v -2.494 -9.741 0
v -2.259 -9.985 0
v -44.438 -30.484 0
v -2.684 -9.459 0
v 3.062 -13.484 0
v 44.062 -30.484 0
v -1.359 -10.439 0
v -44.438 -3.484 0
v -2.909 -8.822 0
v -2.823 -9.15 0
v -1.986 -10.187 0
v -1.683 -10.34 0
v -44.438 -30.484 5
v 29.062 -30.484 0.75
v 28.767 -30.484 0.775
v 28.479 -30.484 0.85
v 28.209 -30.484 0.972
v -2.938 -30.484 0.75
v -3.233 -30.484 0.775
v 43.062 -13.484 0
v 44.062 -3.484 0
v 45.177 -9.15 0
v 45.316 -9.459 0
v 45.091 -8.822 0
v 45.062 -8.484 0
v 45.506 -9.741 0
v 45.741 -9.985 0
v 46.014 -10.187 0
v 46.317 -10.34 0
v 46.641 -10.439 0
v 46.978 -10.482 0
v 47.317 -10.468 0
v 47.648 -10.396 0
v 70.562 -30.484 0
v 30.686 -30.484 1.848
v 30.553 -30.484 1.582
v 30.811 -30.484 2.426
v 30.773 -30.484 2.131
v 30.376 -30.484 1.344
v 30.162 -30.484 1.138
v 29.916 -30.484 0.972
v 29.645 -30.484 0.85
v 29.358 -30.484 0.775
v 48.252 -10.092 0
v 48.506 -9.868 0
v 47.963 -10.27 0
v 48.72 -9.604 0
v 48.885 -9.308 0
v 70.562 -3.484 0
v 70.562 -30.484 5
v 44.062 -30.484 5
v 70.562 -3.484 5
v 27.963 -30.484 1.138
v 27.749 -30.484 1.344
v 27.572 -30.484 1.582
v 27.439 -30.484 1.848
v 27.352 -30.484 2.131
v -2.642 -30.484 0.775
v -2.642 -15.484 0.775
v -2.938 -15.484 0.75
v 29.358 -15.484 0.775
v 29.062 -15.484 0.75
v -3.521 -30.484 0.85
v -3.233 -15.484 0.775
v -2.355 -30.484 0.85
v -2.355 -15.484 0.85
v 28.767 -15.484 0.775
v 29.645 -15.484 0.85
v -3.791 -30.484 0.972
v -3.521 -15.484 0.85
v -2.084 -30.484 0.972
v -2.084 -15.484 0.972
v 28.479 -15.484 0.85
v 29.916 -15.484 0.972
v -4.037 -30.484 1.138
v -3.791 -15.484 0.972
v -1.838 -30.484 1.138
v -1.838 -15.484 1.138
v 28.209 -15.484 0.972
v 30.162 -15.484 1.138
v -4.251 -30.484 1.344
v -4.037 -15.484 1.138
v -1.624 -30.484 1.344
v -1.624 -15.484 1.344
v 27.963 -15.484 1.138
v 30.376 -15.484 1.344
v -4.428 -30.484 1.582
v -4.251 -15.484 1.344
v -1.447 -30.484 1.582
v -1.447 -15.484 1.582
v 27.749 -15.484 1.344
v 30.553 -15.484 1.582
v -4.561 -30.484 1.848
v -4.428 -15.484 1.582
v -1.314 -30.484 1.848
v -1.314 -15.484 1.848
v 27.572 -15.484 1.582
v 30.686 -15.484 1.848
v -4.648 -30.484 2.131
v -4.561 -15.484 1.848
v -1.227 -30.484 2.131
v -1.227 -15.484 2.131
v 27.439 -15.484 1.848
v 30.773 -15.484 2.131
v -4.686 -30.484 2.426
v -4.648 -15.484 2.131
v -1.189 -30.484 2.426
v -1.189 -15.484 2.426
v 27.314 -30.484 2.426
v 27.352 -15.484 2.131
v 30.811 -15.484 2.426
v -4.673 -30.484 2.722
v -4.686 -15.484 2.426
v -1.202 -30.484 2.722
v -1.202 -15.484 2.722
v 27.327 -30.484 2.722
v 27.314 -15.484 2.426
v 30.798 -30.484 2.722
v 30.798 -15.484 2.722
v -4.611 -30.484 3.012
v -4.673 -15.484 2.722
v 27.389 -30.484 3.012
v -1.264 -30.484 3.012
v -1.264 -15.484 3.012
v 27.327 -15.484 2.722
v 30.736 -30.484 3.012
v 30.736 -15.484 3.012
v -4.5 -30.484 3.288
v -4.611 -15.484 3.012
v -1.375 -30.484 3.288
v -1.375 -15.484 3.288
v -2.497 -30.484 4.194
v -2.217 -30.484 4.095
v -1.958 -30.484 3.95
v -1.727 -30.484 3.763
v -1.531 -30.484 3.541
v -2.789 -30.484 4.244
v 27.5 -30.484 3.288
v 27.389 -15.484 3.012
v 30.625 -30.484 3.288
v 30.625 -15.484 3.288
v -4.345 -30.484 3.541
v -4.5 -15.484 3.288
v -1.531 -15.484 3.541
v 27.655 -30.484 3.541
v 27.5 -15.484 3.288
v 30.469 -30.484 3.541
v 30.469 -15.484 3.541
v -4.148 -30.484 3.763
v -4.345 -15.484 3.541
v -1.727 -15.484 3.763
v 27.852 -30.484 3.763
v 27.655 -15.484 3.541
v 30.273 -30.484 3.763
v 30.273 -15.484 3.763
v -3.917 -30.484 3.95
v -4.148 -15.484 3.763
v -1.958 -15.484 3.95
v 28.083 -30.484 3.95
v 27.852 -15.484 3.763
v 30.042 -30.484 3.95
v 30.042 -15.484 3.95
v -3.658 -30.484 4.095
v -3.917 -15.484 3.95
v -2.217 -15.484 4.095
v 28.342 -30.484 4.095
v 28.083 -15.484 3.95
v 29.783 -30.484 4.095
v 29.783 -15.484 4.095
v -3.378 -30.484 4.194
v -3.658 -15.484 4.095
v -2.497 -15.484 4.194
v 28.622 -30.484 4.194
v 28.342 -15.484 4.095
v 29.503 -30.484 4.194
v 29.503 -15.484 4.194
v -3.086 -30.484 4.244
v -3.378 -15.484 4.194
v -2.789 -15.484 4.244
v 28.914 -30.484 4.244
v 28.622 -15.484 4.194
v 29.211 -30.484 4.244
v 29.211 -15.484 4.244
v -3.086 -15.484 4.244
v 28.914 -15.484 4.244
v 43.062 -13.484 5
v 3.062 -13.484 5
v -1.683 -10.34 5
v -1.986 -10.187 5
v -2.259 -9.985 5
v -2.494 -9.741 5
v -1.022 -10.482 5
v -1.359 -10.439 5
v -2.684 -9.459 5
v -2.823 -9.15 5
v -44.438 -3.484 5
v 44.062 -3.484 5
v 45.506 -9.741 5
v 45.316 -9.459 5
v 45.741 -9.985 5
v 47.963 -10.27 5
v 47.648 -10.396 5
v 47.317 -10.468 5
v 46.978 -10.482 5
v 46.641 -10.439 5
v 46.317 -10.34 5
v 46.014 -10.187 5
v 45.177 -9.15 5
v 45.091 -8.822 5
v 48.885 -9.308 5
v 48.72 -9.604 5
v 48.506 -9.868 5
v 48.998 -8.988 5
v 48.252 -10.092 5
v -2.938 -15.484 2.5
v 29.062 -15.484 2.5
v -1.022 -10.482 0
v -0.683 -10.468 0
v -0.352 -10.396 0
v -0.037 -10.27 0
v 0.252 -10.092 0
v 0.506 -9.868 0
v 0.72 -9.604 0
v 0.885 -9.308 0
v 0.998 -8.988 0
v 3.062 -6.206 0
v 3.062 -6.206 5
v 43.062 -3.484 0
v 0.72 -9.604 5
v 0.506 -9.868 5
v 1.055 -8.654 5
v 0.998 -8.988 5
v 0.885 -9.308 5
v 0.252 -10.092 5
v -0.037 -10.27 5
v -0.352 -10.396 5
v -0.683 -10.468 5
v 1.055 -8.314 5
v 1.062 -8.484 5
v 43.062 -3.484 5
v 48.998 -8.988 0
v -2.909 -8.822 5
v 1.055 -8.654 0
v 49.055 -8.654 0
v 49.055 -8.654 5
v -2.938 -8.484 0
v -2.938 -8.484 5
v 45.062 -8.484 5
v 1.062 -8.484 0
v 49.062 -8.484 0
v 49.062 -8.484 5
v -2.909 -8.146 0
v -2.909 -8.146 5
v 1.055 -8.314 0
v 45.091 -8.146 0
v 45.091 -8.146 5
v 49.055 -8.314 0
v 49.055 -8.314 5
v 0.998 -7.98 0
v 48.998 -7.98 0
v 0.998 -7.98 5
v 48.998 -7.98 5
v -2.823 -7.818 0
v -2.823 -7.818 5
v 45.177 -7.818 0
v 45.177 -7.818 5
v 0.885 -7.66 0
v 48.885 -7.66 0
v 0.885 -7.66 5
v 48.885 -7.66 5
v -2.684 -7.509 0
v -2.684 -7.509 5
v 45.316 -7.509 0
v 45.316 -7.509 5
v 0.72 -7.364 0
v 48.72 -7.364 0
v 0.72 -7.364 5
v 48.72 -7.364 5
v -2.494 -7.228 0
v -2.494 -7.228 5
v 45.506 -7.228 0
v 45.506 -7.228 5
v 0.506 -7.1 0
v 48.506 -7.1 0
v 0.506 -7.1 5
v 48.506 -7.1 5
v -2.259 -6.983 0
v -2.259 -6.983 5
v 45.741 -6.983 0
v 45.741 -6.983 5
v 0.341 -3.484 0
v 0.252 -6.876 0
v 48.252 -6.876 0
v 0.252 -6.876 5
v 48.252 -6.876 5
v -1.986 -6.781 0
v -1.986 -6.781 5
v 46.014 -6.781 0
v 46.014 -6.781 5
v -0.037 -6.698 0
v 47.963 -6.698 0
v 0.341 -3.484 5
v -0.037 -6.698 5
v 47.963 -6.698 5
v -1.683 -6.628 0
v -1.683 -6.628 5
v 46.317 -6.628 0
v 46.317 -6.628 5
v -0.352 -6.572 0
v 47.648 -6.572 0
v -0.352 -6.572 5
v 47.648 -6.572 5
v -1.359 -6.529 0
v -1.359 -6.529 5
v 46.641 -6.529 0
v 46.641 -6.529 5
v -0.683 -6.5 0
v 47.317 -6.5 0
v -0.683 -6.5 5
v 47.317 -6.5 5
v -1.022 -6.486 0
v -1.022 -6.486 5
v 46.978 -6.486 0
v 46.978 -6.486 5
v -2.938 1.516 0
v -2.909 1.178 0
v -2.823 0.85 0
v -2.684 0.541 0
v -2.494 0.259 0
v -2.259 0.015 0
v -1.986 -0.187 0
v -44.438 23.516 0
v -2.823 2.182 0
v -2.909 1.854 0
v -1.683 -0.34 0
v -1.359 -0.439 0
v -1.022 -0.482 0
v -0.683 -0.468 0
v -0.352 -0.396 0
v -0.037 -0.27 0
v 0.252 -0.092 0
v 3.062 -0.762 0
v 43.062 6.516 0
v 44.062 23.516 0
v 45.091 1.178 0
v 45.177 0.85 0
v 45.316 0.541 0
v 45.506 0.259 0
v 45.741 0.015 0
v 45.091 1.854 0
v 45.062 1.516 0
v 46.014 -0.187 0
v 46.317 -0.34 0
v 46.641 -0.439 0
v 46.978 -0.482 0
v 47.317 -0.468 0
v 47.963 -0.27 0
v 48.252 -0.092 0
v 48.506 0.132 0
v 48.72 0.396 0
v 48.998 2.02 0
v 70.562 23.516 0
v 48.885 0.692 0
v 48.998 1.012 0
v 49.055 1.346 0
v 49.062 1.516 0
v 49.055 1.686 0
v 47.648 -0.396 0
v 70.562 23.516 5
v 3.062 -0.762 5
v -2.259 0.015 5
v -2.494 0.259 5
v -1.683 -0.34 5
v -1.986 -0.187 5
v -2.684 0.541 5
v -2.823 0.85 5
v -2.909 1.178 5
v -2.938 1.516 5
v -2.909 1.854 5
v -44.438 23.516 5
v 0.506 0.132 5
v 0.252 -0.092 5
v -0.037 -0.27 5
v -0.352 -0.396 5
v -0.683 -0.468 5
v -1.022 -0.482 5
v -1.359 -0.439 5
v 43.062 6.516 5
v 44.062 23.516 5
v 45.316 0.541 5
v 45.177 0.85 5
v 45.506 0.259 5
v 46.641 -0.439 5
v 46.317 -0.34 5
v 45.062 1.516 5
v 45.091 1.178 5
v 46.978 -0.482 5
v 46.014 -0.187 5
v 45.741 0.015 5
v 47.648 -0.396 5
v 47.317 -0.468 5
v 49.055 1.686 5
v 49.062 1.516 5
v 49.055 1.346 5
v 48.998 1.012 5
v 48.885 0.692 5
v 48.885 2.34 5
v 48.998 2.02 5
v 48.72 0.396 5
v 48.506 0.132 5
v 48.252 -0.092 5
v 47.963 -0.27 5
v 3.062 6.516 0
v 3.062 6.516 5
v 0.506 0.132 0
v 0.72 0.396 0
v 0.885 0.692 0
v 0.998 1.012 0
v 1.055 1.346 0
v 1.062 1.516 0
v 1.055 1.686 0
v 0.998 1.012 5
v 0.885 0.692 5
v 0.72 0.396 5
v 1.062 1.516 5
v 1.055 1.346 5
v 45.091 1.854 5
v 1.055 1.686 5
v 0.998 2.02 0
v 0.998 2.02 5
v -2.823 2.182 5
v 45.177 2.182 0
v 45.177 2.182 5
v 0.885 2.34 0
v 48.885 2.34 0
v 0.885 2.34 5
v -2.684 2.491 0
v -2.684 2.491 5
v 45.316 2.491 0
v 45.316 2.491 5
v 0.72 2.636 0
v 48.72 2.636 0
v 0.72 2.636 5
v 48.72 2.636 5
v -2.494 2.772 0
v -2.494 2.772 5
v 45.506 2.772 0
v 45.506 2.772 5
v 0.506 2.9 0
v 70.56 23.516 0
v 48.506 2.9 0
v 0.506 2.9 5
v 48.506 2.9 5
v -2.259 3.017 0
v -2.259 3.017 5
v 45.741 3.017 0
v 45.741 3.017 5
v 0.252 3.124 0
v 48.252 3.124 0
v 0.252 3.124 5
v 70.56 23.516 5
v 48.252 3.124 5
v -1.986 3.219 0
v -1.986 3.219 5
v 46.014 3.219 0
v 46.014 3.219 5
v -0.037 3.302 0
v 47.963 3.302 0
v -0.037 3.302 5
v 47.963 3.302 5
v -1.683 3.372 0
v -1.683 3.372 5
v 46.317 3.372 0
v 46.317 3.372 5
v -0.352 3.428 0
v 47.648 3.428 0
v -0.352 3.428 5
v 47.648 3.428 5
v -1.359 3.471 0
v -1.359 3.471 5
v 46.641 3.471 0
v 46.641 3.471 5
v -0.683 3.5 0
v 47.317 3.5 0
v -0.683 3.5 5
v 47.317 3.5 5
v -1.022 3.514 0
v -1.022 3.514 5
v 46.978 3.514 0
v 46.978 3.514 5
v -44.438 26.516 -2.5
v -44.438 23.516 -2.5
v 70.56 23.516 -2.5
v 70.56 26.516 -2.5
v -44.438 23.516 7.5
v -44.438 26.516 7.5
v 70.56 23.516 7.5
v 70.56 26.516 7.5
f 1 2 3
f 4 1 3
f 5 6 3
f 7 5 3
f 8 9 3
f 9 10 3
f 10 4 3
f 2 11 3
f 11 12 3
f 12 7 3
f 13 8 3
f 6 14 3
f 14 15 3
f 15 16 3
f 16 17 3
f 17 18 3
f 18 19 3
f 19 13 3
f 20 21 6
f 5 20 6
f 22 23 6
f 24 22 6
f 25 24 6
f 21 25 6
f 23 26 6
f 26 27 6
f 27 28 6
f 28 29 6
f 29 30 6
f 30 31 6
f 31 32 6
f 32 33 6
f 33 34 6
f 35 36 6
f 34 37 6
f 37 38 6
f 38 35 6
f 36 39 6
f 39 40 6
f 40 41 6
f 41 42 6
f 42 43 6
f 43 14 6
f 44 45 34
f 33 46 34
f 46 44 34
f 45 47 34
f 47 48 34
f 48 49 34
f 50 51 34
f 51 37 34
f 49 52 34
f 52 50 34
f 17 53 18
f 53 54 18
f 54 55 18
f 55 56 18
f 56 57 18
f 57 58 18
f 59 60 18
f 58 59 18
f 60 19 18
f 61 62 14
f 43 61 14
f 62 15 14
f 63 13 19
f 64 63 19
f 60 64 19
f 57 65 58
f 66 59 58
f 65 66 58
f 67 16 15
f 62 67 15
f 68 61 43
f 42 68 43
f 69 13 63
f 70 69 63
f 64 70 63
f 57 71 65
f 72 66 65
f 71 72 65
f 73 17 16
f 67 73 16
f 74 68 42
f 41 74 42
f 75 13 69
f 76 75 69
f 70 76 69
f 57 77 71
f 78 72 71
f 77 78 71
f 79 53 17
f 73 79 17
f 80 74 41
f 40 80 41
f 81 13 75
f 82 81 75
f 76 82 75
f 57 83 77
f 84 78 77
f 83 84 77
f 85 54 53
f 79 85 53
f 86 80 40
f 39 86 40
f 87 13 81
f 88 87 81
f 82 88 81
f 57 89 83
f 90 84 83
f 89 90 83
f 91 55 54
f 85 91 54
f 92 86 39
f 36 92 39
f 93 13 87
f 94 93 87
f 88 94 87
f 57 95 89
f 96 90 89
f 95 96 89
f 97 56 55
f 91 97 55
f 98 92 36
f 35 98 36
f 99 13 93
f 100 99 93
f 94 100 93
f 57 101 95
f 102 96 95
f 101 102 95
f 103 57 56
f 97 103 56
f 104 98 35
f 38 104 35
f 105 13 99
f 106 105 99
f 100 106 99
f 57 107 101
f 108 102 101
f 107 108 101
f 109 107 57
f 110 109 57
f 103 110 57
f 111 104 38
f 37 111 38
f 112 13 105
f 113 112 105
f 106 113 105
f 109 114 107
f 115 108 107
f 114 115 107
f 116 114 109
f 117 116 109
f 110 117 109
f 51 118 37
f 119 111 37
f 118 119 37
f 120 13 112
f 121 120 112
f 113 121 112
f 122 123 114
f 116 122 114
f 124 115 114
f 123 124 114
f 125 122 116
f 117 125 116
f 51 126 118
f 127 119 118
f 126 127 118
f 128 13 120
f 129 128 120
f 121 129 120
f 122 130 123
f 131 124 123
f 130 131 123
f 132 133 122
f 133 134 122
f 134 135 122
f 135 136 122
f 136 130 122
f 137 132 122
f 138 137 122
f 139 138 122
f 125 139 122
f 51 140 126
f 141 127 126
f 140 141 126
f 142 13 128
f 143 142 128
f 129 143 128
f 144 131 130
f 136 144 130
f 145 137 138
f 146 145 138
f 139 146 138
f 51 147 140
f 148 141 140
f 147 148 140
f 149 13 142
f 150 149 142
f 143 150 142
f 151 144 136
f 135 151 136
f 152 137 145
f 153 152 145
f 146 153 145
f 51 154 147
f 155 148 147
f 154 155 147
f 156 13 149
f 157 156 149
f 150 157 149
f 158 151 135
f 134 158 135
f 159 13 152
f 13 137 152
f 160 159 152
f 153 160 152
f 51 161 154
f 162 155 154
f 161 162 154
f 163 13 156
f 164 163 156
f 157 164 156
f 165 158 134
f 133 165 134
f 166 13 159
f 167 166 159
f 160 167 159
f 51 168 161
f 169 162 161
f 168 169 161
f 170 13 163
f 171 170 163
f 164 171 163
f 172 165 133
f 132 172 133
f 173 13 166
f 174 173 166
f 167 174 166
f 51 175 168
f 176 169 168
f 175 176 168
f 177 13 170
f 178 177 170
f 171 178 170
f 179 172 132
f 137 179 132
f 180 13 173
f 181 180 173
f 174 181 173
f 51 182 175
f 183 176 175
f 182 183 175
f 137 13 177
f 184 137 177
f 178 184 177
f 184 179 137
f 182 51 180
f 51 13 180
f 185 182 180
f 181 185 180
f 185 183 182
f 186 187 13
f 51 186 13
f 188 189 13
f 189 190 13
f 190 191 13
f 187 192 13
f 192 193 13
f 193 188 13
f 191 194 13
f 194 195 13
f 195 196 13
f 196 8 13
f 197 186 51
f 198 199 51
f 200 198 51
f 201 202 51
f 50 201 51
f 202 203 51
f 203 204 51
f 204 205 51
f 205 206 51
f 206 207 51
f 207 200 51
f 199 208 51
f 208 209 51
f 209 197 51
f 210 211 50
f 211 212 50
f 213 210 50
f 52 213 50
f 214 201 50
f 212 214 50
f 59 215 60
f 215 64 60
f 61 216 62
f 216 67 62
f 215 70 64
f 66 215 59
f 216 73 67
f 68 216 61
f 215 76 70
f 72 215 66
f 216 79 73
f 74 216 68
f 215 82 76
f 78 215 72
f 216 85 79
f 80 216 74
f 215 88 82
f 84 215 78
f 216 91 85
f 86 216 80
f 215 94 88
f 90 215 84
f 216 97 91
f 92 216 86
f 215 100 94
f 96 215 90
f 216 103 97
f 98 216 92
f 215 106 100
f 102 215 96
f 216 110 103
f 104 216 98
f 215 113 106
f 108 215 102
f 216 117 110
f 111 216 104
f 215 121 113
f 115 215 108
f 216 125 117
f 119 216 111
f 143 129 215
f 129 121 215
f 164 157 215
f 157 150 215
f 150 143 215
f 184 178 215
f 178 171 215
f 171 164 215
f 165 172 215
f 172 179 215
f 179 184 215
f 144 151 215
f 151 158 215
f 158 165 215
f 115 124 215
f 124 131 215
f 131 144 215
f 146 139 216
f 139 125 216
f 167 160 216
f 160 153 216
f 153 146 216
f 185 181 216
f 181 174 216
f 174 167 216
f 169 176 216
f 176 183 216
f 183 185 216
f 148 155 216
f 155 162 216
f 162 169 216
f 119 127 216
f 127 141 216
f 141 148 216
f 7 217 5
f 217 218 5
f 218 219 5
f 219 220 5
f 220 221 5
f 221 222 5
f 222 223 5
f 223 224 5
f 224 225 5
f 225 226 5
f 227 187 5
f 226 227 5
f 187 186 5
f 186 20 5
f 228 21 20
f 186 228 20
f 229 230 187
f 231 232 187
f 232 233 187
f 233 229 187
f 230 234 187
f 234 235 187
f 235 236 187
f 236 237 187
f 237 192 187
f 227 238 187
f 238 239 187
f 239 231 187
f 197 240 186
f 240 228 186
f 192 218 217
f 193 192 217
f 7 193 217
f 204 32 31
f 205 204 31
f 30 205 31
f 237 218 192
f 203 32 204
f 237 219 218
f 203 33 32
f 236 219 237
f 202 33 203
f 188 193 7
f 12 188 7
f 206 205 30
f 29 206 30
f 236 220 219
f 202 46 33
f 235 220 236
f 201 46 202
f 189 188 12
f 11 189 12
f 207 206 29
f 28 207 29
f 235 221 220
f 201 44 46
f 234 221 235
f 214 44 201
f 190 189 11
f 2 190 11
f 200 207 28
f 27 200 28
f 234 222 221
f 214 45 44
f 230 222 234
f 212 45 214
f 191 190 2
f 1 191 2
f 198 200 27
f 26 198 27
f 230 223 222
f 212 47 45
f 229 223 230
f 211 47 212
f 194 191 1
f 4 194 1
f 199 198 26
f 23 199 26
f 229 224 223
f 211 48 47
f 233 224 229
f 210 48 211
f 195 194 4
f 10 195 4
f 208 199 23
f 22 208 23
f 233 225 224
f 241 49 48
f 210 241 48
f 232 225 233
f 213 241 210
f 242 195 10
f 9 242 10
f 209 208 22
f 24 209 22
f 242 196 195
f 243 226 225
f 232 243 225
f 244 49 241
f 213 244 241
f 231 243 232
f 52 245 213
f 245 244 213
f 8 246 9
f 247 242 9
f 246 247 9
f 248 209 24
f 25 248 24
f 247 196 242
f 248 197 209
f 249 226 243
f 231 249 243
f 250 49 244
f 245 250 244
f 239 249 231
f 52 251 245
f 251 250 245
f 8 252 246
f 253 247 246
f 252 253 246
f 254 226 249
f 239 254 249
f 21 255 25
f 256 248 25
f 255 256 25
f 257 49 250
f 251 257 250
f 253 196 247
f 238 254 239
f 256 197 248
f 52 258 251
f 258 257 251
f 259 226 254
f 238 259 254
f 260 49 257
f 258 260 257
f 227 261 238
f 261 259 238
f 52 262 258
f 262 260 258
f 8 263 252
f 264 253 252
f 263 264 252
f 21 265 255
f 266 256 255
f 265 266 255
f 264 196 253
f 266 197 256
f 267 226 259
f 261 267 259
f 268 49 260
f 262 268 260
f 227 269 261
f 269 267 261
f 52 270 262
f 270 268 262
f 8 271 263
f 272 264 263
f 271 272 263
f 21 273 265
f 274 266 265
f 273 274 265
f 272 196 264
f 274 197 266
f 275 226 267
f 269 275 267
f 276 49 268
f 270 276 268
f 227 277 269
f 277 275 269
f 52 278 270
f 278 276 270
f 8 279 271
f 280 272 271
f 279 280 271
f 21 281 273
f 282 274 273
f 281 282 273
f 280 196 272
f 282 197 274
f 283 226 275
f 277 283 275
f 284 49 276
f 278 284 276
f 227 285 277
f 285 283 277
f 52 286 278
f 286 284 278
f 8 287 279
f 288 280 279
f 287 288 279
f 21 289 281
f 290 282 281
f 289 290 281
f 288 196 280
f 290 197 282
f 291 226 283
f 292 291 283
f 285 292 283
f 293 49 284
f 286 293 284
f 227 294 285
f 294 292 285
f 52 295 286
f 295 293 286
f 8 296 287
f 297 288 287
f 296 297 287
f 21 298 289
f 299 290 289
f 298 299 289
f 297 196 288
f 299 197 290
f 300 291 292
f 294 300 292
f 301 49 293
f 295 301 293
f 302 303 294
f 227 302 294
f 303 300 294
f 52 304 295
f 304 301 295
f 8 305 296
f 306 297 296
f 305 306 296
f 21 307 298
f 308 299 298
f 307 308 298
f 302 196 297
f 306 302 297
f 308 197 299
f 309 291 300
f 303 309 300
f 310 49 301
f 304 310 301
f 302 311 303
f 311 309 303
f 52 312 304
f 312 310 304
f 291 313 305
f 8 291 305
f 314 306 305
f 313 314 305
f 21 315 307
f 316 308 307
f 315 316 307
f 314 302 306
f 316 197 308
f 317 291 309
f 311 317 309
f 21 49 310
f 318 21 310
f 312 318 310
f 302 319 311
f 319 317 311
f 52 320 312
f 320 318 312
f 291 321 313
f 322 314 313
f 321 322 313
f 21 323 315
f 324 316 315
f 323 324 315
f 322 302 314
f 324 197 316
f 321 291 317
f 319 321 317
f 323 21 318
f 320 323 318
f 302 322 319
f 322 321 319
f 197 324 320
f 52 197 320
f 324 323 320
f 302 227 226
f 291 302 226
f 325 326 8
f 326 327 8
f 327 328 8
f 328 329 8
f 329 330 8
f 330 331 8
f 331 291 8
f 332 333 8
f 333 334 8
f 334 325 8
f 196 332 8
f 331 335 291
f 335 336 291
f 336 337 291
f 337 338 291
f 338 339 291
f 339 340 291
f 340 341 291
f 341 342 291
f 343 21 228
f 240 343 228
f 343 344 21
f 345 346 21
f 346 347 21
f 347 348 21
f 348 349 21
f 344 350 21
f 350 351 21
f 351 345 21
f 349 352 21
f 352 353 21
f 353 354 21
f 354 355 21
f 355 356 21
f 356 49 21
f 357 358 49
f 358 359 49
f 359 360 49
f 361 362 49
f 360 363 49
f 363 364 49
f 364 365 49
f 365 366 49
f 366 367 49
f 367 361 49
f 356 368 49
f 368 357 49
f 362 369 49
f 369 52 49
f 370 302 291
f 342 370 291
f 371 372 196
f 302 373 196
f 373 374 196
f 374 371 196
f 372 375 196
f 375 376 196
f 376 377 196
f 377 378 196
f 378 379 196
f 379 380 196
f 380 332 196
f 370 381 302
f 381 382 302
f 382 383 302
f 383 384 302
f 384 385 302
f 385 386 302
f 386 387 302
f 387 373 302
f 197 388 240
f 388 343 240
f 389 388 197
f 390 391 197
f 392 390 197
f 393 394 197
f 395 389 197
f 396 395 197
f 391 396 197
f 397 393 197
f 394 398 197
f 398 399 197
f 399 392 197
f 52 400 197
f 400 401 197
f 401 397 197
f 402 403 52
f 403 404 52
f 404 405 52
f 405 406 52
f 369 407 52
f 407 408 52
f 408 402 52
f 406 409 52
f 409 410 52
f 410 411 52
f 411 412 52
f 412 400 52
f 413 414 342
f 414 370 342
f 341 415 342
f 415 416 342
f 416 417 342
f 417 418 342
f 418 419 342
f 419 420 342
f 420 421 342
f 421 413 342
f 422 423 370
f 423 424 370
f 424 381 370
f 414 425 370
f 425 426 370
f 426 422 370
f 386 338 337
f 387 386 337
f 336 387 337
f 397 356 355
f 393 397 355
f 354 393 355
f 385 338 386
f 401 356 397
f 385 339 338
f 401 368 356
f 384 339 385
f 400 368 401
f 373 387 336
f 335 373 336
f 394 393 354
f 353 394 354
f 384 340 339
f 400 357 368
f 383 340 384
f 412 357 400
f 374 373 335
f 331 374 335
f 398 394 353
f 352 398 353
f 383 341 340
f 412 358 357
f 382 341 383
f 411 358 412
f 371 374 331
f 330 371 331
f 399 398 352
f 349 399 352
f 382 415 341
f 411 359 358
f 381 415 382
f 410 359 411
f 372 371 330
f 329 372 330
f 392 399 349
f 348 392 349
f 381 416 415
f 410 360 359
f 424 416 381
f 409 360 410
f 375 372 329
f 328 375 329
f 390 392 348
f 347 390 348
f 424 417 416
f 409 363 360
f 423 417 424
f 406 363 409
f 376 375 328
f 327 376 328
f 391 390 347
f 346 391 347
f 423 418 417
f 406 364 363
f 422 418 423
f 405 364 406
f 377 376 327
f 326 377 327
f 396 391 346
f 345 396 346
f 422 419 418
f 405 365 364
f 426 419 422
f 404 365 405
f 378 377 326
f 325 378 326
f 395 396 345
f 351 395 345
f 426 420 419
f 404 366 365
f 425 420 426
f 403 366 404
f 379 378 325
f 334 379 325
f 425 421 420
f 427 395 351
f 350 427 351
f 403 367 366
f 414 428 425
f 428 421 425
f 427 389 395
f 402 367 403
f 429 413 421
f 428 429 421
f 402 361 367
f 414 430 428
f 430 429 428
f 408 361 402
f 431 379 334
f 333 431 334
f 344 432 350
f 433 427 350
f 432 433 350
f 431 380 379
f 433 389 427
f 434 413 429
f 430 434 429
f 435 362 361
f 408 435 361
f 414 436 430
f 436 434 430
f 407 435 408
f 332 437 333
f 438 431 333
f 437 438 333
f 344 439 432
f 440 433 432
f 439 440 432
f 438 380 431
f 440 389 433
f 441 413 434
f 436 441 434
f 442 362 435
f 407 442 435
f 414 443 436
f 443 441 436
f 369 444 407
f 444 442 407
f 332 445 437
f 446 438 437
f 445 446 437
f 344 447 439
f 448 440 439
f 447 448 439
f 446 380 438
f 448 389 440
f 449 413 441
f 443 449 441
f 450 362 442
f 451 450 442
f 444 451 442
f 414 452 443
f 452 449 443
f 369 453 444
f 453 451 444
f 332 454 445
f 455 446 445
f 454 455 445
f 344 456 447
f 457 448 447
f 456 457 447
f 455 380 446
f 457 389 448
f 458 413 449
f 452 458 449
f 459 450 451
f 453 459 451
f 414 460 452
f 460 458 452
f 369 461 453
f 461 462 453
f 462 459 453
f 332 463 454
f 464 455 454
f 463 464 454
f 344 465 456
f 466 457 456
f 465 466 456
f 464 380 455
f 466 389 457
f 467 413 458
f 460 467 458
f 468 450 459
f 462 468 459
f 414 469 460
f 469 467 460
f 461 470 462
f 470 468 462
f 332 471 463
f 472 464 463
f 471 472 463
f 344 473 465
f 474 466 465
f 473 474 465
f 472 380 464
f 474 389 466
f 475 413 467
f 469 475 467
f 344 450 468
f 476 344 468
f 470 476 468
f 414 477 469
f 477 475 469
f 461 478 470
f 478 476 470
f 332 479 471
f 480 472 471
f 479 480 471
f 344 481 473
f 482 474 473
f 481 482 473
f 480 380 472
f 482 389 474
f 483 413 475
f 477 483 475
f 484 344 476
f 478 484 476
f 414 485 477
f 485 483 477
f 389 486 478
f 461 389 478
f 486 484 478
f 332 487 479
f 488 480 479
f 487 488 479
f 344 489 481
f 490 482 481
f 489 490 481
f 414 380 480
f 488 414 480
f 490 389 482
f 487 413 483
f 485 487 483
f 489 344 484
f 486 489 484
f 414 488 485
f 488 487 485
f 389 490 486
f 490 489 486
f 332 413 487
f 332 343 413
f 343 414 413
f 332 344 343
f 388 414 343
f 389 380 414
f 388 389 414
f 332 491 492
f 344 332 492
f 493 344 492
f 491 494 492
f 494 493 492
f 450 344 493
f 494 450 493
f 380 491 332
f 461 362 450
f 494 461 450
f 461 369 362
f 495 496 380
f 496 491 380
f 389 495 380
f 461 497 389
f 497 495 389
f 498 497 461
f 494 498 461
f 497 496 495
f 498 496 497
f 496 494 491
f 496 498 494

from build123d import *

# Parameters (mm, degrees)
SKETCH_1_W          = 115
SKETCH_1_H          = 54
SKETCH_1_R          = 2
SKETCH_1_W_2        = 40
SKETCH_1_H_2        = 20
EXTRUDE_3_DEPTH     = 5
SKETCH_3_R          = 1.75
CUT_EXTRUDE_2_DEPTH = 15
CUT_EXTRUDE_3_DEPTH = 10
EXTRUDE_4_DEPTH     = 3


with BuildPart() as part:
    # 草圖1 → 填料-伸長3 (new body)
    with BuildSketch(Plane.XY):
        with Locations((13.062480584, -3.484099434)):
            Rectangle(SKETCH_1_W, SKETCH_1_H)
        with Locations((-0.937519416, -8.484099434)):
            Circle(SKETCH_1_R, mode=Mode.SUBTRACT)
        with Locations((47.062480584, -8.484099434)):
            Circle(SKETCH_1_R, mode=Mode.SUBTRACT)
        with Locations((-0.937519416, 1.515900566)):
            Circle(SKETCH_1_R, mode=Mode.SUBTRACT)
        with Locations((47.062480584, 1.515900566)):
            Circle(SKETCH_1_R, mode=Mode.SUBTRACT)
        with Locations((23.062480584, -3.484099434)):
            Rectangle(SKETCH_1_W_2, SKETCH_1_H_2, mode=Mode.SUBTRACT)
    extrude(amount=EXTRUDE_3_DEPTH)

    # 草圖3 → 除料-伸長2 (cut)
    with BuildSketch(Plane.XZ.offset(30.484099434)):
        with Locations(Location((29.062480584, 2.5, 0), (0, 0, 270))):
            Circle(SKETCH_3_R)
        with Locations(Location((-2.937519416, 2.5, 0), (0, 0, 270))):
            Circle(SKETCH_3_R)
    extrude(amount=-CUT_EXTRUDE_2_DEPTH, mode=Mode.SUBTRACT)

    # 草圖4 → 除料-伸長3 (cut)
    with BuildSketch(Plane.XY.offset(5)):
        Polygon((0.340707034, -3.484099434), (3.062480584, -6.205872984), (3.062480584, -0.762325884), align=None)
    extrude(amount=-CUT_EXTRUDE_3_DEPTH, mode=Mode.SUBTRACT)

    # 草圖5 → 填料-伸長4 (add)
    with BuildSketch(Plane(origin=(0, 23.515900566, 0), x_dir=(1, 0, 0), z_dir=(0, 1, 0))):
        Polygon((-44.437519416, 0), (-44.437519416, 2.5), (70.560278635, 2.5), (70.560278635, -7.5), (-44.437519416, -7.5), align=None)
    extrude(amount=EXTRUDE_4_DEPTH)


solid = part.part
